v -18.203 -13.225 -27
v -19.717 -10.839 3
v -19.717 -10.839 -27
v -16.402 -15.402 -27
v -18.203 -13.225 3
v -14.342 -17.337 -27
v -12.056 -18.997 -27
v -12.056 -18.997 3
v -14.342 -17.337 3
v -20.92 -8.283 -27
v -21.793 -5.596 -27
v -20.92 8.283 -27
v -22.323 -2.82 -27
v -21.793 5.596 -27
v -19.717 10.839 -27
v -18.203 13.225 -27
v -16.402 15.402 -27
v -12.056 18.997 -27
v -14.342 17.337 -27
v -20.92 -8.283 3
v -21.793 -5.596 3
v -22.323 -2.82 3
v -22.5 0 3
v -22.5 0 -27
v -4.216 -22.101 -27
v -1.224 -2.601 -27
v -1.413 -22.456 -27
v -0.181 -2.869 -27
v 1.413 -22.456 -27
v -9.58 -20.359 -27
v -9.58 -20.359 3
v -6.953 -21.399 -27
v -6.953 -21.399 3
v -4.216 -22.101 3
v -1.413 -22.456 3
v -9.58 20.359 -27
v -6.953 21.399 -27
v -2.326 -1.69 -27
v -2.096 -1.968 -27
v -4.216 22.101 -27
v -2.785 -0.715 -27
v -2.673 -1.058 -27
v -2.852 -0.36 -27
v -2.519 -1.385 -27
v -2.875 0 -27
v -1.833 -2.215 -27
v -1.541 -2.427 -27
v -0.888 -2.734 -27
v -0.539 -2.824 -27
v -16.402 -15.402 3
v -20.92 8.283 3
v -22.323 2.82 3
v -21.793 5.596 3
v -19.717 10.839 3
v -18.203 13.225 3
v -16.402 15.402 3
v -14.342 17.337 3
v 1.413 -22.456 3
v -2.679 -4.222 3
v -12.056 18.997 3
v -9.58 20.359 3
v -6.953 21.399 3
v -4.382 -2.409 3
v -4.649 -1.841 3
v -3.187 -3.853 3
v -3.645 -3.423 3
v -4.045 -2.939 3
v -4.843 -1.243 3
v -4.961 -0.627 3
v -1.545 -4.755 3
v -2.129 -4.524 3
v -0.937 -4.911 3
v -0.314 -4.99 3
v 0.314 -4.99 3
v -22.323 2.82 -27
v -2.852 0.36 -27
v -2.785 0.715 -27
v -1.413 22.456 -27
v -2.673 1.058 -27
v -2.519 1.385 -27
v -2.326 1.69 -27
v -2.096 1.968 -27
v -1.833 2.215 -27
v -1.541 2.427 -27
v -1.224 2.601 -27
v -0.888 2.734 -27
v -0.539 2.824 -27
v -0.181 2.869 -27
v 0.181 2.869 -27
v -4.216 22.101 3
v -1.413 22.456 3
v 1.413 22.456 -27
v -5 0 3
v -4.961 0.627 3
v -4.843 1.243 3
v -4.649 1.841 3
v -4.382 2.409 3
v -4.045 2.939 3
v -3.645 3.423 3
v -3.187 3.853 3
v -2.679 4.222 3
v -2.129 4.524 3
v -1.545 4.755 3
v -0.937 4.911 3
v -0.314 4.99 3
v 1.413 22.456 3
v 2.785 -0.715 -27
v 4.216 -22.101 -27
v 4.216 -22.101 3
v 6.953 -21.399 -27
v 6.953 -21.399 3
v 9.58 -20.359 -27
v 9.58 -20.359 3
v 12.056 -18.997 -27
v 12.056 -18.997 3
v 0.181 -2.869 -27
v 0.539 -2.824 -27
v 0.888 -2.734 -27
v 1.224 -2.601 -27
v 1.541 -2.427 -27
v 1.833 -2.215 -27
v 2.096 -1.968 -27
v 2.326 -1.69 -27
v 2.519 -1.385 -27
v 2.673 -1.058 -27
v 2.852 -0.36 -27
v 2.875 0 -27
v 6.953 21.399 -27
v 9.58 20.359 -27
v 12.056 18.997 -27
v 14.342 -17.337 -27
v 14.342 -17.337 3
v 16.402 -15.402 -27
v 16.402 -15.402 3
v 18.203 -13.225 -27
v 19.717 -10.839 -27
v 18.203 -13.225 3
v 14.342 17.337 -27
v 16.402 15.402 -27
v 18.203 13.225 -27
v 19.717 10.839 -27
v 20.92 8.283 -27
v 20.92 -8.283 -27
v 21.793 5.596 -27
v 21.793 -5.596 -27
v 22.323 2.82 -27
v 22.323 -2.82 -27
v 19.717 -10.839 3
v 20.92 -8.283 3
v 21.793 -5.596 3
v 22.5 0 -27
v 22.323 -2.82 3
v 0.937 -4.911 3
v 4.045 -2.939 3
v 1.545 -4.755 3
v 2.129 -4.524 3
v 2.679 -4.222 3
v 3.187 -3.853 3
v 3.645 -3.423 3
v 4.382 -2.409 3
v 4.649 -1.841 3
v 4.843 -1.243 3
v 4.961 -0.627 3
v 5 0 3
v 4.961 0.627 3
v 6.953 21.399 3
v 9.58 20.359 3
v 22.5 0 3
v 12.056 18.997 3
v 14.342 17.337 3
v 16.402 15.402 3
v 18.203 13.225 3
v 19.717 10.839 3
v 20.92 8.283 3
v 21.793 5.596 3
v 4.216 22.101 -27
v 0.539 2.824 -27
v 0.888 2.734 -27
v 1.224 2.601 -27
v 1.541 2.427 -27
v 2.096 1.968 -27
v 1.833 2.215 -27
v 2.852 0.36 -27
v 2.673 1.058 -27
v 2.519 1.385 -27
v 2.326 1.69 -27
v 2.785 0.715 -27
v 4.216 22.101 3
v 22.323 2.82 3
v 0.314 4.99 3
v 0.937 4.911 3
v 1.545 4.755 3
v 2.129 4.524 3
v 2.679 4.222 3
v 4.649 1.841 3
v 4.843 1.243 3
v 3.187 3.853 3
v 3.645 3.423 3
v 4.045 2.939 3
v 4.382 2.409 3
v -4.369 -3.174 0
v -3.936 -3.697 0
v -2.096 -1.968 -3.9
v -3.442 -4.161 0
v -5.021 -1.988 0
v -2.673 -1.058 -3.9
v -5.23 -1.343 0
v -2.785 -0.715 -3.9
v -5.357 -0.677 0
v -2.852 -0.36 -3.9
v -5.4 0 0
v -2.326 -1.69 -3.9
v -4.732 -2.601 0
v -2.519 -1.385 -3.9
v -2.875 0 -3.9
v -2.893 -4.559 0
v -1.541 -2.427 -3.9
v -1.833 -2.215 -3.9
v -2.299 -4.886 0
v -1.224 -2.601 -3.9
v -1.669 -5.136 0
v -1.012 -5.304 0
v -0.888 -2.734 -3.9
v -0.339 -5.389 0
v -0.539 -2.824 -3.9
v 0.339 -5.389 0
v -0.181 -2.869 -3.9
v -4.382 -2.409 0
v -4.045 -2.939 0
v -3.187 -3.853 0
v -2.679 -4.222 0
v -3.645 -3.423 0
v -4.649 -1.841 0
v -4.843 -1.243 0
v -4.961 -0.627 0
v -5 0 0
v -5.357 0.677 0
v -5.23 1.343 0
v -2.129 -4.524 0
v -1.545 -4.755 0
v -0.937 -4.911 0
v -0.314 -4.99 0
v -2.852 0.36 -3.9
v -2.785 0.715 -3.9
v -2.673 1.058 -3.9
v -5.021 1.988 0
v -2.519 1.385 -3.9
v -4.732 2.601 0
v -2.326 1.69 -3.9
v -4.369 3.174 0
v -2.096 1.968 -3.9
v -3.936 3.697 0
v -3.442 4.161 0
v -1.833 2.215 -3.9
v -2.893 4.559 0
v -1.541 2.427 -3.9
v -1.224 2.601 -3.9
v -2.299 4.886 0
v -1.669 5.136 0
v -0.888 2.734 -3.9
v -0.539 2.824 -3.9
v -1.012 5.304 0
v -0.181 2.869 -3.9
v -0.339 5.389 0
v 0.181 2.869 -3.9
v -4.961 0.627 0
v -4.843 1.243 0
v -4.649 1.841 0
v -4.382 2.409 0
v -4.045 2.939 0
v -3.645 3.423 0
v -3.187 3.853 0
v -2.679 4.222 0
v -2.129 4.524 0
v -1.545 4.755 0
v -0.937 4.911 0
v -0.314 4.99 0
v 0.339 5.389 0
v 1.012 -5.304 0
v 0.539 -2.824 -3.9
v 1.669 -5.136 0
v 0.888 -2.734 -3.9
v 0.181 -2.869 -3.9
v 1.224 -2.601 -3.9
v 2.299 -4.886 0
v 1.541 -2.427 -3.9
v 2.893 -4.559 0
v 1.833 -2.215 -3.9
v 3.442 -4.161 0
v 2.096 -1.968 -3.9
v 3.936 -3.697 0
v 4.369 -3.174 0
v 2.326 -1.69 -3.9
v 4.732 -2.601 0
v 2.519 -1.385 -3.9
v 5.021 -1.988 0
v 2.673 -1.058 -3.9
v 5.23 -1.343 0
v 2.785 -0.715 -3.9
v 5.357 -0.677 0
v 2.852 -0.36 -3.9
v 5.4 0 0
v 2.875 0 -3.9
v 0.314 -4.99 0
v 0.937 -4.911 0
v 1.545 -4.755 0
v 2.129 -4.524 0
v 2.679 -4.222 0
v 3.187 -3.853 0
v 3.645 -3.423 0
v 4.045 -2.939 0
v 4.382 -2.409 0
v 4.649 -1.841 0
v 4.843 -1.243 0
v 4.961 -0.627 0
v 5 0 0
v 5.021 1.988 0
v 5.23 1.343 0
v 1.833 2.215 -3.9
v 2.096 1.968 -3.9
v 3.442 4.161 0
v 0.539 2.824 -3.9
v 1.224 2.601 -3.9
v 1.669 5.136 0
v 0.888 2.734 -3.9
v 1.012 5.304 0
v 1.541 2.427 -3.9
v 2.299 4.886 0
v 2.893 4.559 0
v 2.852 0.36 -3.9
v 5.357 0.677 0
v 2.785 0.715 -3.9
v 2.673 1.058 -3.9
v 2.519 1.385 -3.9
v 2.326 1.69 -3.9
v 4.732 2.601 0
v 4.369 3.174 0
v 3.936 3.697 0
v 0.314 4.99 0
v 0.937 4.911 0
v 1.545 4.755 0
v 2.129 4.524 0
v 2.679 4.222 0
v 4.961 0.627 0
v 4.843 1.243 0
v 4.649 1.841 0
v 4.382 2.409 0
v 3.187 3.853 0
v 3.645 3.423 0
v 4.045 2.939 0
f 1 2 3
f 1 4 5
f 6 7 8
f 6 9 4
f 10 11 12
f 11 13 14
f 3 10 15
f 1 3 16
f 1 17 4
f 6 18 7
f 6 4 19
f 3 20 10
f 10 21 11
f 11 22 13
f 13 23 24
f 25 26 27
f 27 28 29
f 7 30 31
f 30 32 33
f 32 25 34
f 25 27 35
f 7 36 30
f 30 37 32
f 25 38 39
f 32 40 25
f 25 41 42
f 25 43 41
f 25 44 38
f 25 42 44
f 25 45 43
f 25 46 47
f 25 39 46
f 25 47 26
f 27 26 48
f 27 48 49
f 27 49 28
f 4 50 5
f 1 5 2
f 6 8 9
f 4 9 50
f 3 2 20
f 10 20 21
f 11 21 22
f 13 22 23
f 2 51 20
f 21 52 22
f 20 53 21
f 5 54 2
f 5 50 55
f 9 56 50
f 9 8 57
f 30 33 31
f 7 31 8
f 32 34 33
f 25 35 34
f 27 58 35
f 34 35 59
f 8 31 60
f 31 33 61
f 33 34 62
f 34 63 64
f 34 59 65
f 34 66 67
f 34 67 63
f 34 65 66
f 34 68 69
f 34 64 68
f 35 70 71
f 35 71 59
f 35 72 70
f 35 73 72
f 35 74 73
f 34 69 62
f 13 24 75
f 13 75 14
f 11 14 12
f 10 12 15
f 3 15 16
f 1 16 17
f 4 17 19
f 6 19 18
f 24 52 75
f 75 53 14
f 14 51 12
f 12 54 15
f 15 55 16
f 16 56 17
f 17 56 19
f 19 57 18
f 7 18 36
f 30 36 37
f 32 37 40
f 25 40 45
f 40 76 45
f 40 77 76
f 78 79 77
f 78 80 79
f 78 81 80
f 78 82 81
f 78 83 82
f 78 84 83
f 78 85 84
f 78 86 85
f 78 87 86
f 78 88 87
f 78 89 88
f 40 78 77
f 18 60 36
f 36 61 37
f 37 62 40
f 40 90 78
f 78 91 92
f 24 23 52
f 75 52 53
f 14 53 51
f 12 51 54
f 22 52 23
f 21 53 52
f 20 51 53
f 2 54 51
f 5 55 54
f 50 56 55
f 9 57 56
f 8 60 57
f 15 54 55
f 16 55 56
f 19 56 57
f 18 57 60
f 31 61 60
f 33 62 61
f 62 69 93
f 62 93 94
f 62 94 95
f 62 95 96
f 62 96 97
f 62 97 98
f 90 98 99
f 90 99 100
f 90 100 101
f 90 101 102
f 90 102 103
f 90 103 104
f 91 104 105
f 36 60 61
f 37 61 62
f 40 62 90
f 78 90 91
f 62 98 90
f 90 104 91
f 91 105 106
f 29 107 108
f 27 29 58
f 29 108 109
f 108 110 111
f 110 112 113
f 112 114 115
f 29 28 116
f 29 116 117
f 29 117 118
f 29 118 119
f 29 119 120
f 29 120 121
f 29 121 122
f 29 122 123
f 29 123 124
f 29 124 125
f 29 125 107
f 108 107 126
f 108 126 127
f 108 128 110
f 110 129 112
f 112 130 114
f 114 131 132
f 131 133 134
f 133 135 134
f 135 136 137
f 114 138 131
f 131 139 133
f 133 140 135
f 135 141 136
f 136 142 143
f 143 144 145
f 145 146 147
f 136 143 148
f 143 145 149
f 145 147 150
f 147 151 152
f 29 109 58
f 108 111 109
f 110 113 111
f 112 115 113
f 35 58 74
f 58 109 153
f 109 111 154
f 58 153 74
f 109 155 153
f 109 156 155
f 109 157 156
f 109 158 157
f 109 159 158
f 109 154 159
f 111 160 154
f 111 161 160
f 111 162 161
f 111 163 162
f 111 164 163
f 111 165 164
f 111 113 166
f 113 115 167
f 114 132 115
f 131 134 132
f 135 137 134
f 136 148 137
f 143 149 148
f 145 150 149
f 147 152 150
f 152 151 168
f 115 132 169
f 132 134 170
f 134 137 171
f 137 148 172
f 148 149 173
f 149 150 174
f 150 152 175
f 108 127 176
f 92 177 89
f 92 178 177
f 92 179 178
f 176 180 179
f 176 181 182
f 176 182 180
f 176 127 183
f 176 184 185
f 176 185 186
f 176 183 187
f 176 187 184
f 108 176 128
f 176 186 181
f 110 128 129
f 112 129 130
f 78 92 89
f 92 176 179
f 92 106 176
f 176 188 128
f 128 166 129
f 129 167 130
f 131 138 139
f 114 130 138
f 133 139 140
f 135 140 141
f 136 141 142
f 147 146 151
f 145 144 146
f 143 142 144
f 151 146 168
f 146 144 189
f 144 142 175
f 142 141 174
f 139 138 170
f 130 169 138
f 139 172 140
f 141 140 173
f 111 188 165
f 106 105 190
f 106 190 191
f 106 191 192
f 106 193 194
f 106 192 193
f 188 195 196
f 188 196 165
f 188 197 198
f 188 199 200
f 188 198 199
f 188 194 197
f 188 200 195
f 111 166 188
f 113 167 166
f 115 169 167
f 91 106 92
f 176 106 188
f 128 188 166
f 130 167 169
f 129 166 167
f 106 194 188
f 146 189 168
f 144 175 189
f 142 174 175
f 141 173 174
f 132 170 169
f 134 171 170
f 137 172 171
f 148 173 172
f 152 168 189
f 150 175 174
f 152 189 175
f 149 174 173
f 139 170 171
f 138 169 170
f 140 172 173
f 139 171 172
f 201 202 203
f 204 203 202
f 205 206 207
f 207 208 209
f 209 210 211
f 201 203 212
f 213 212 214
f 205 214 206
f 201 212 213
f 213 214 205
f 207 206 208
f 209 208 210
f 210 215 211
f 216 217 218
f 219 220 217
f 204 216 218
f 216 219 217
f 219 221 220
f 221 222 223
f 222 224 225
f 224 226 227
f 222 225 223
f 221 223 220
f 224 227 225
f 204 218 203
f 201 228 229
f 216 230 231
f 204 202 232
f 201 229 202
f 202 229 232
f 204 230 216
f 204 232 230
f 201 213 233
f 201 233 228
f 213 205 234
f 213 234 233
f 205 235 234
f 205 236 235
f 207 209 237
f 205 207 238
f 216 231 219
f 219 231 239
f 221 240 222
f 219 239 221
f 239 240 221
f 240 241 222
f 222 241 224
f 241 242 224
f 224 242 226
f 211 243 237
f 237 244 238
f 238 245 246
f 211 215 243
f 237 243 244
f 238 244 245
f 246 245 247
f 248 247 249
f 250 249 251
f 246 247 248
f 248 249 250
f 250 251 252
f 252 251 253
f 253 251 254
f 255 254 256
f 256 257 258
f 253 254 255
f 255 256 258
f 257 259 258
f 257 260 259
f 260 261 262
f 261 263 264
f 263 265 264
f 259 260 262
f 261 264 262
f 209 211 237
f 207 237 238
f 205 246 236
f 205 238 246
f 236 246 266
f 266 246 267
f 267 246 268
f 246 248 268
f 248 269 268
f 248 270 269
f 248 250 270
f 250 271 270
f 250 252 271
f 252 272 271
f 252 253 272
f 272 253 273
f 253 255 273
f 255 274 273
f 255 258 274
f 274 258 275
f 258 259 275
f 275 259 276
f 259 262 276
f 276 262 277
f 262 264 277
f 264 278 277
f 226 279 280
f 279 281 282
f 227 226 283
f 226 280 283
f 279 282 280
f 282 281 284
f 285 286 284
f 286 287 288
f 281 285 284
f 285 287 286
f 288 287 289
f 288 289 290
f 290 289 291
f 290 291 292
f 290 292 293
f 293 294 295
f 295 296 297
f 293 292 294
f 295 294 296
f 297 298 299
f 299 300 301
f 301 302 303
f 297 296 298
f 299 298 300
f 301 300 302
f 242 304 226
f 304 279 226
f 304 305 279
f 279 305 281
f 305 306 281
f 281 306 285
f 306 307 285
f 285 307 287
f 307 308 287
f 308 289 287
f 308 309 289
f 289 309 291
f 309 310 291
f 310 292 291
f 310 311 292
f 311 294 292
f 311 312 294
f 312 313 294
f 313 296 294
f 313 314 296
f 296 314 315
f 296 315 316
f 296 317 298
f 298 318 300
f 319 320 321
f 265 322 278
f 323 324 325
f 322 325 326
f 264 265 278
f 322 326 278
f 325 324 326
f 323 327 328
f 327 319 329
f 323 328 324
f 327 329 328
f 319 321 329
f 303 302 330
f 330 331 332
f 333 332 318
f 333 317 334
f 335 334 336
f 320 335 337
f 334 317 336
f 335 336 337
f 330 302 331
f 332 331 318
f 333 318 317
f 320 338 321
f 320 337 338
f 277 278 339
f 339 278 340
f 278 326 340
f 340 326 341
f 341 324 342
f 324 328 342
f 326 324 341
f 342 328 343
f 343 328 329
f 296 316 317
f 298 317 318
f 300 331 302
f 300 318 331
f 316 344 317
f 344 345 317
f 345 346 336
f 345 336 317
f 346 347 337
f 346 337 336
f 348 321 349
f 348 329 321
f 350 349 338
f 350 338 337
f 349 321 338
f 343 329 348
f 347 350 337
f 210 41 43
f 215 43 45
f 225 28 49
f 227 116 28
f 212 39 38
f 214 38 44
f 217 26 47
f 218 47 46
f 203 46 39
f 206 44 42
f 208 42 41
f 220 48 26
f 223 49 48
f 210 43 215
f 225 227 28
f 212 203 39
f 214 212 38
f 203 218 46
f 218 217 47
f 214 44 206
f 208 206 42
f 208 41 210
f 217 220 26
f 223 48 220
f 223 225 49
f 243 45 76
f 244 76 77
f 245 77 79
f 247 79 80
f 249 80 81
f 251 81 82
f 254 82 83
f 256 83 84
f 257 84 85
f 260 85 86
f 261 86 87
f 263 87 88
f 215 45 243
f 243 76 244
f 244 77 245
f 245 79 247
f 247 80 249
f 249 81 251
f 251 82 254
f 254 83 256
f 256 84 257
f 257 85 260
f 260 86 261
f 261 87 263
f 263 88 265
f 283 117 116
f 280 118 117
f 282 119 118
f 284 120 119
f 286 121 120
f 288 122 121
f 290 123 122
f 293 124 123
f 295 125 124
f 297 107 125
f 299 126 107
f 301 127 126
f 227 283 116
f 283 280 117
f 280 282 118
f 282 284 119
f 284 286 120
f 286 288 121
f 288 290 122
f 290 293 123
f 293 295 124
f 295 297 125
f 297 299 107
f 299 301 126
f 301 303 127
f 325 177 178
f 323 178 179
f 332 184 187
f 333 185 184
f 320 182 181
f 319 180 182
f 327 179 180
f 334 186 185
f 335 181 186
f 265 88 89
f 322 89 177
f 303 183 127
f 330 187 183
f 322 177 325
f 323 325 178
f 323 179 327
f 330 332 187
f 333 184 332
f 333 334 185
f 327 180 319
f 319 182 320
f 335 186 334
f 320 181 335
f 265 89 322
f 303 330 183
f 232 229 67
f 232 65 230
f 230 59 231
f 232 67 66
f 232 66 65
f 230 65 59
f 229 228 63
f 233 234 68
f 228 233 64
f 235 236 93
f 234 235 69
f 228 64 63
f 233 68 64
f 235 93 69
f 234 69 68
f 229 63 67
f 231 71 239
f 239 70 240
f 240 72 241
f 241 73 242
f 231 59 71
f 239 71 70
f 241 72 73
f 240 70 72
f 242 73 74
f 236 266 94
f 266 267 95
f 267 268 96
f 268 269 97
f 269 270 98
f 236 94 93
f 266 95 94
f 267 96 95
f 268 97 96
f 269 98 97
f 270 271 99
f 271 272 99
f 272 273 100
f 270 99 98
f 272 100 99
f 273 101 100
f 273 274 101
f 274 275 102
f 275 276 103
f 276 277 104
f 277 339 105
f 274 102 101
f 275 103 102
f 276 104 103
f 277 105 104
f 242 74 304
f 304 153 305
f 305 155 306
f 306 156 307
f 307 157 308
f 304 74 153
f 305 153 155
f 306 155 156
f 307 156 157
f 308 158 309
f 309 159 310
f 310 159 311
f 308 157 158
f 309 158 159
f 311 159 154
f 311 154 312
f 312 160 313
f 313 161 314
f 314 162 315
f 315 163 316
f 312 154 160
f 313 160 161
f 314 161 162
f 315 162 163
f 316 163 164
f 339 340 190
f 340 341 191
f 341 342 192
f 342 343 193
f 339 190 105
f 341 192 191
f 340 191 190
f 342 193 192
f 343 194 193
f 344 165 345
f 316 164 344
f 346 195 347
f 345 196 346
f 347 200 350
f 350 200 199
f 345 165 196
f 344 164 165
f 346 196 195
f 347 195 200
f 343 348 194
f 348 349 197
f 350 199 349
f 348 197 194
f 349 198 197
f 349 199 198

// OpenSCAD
$fn = 50;

difference() {
	union() {
		translate(v = [0, 0, -27.0]) {
			cylinder(h = 30, r = 22.5);
		}
		#translate(v = [0, 0, -30.0]) {
			cylinder(h = 30, r = 2.875);
		}
	}
	union() {
		translate(v = [0, 0, 0]) {
			rotate(a = [0, 0, 0]) {
				difference() {
					union() {
						translate(v = [0, 0, -30.0]) {
							cylinder(h = 30, r = 2.6);
						}
						translate(v = [0, 0, -3.9]) {
							cylinder(h = 3.9, r1 = 2.875, r2 = 5.4);
						}
						translate(v = [0, 0, -30.0]) {
							cylinder(h = 30, r = 2.875);
						}
						translate(v = [0, 0, -30.0]) {
							cylinder(h = 30, r = 2.6);
						}
					}
					union();
				}
			}
		}
		#cylinder(h = 3, r = 5.0);
	}
}
